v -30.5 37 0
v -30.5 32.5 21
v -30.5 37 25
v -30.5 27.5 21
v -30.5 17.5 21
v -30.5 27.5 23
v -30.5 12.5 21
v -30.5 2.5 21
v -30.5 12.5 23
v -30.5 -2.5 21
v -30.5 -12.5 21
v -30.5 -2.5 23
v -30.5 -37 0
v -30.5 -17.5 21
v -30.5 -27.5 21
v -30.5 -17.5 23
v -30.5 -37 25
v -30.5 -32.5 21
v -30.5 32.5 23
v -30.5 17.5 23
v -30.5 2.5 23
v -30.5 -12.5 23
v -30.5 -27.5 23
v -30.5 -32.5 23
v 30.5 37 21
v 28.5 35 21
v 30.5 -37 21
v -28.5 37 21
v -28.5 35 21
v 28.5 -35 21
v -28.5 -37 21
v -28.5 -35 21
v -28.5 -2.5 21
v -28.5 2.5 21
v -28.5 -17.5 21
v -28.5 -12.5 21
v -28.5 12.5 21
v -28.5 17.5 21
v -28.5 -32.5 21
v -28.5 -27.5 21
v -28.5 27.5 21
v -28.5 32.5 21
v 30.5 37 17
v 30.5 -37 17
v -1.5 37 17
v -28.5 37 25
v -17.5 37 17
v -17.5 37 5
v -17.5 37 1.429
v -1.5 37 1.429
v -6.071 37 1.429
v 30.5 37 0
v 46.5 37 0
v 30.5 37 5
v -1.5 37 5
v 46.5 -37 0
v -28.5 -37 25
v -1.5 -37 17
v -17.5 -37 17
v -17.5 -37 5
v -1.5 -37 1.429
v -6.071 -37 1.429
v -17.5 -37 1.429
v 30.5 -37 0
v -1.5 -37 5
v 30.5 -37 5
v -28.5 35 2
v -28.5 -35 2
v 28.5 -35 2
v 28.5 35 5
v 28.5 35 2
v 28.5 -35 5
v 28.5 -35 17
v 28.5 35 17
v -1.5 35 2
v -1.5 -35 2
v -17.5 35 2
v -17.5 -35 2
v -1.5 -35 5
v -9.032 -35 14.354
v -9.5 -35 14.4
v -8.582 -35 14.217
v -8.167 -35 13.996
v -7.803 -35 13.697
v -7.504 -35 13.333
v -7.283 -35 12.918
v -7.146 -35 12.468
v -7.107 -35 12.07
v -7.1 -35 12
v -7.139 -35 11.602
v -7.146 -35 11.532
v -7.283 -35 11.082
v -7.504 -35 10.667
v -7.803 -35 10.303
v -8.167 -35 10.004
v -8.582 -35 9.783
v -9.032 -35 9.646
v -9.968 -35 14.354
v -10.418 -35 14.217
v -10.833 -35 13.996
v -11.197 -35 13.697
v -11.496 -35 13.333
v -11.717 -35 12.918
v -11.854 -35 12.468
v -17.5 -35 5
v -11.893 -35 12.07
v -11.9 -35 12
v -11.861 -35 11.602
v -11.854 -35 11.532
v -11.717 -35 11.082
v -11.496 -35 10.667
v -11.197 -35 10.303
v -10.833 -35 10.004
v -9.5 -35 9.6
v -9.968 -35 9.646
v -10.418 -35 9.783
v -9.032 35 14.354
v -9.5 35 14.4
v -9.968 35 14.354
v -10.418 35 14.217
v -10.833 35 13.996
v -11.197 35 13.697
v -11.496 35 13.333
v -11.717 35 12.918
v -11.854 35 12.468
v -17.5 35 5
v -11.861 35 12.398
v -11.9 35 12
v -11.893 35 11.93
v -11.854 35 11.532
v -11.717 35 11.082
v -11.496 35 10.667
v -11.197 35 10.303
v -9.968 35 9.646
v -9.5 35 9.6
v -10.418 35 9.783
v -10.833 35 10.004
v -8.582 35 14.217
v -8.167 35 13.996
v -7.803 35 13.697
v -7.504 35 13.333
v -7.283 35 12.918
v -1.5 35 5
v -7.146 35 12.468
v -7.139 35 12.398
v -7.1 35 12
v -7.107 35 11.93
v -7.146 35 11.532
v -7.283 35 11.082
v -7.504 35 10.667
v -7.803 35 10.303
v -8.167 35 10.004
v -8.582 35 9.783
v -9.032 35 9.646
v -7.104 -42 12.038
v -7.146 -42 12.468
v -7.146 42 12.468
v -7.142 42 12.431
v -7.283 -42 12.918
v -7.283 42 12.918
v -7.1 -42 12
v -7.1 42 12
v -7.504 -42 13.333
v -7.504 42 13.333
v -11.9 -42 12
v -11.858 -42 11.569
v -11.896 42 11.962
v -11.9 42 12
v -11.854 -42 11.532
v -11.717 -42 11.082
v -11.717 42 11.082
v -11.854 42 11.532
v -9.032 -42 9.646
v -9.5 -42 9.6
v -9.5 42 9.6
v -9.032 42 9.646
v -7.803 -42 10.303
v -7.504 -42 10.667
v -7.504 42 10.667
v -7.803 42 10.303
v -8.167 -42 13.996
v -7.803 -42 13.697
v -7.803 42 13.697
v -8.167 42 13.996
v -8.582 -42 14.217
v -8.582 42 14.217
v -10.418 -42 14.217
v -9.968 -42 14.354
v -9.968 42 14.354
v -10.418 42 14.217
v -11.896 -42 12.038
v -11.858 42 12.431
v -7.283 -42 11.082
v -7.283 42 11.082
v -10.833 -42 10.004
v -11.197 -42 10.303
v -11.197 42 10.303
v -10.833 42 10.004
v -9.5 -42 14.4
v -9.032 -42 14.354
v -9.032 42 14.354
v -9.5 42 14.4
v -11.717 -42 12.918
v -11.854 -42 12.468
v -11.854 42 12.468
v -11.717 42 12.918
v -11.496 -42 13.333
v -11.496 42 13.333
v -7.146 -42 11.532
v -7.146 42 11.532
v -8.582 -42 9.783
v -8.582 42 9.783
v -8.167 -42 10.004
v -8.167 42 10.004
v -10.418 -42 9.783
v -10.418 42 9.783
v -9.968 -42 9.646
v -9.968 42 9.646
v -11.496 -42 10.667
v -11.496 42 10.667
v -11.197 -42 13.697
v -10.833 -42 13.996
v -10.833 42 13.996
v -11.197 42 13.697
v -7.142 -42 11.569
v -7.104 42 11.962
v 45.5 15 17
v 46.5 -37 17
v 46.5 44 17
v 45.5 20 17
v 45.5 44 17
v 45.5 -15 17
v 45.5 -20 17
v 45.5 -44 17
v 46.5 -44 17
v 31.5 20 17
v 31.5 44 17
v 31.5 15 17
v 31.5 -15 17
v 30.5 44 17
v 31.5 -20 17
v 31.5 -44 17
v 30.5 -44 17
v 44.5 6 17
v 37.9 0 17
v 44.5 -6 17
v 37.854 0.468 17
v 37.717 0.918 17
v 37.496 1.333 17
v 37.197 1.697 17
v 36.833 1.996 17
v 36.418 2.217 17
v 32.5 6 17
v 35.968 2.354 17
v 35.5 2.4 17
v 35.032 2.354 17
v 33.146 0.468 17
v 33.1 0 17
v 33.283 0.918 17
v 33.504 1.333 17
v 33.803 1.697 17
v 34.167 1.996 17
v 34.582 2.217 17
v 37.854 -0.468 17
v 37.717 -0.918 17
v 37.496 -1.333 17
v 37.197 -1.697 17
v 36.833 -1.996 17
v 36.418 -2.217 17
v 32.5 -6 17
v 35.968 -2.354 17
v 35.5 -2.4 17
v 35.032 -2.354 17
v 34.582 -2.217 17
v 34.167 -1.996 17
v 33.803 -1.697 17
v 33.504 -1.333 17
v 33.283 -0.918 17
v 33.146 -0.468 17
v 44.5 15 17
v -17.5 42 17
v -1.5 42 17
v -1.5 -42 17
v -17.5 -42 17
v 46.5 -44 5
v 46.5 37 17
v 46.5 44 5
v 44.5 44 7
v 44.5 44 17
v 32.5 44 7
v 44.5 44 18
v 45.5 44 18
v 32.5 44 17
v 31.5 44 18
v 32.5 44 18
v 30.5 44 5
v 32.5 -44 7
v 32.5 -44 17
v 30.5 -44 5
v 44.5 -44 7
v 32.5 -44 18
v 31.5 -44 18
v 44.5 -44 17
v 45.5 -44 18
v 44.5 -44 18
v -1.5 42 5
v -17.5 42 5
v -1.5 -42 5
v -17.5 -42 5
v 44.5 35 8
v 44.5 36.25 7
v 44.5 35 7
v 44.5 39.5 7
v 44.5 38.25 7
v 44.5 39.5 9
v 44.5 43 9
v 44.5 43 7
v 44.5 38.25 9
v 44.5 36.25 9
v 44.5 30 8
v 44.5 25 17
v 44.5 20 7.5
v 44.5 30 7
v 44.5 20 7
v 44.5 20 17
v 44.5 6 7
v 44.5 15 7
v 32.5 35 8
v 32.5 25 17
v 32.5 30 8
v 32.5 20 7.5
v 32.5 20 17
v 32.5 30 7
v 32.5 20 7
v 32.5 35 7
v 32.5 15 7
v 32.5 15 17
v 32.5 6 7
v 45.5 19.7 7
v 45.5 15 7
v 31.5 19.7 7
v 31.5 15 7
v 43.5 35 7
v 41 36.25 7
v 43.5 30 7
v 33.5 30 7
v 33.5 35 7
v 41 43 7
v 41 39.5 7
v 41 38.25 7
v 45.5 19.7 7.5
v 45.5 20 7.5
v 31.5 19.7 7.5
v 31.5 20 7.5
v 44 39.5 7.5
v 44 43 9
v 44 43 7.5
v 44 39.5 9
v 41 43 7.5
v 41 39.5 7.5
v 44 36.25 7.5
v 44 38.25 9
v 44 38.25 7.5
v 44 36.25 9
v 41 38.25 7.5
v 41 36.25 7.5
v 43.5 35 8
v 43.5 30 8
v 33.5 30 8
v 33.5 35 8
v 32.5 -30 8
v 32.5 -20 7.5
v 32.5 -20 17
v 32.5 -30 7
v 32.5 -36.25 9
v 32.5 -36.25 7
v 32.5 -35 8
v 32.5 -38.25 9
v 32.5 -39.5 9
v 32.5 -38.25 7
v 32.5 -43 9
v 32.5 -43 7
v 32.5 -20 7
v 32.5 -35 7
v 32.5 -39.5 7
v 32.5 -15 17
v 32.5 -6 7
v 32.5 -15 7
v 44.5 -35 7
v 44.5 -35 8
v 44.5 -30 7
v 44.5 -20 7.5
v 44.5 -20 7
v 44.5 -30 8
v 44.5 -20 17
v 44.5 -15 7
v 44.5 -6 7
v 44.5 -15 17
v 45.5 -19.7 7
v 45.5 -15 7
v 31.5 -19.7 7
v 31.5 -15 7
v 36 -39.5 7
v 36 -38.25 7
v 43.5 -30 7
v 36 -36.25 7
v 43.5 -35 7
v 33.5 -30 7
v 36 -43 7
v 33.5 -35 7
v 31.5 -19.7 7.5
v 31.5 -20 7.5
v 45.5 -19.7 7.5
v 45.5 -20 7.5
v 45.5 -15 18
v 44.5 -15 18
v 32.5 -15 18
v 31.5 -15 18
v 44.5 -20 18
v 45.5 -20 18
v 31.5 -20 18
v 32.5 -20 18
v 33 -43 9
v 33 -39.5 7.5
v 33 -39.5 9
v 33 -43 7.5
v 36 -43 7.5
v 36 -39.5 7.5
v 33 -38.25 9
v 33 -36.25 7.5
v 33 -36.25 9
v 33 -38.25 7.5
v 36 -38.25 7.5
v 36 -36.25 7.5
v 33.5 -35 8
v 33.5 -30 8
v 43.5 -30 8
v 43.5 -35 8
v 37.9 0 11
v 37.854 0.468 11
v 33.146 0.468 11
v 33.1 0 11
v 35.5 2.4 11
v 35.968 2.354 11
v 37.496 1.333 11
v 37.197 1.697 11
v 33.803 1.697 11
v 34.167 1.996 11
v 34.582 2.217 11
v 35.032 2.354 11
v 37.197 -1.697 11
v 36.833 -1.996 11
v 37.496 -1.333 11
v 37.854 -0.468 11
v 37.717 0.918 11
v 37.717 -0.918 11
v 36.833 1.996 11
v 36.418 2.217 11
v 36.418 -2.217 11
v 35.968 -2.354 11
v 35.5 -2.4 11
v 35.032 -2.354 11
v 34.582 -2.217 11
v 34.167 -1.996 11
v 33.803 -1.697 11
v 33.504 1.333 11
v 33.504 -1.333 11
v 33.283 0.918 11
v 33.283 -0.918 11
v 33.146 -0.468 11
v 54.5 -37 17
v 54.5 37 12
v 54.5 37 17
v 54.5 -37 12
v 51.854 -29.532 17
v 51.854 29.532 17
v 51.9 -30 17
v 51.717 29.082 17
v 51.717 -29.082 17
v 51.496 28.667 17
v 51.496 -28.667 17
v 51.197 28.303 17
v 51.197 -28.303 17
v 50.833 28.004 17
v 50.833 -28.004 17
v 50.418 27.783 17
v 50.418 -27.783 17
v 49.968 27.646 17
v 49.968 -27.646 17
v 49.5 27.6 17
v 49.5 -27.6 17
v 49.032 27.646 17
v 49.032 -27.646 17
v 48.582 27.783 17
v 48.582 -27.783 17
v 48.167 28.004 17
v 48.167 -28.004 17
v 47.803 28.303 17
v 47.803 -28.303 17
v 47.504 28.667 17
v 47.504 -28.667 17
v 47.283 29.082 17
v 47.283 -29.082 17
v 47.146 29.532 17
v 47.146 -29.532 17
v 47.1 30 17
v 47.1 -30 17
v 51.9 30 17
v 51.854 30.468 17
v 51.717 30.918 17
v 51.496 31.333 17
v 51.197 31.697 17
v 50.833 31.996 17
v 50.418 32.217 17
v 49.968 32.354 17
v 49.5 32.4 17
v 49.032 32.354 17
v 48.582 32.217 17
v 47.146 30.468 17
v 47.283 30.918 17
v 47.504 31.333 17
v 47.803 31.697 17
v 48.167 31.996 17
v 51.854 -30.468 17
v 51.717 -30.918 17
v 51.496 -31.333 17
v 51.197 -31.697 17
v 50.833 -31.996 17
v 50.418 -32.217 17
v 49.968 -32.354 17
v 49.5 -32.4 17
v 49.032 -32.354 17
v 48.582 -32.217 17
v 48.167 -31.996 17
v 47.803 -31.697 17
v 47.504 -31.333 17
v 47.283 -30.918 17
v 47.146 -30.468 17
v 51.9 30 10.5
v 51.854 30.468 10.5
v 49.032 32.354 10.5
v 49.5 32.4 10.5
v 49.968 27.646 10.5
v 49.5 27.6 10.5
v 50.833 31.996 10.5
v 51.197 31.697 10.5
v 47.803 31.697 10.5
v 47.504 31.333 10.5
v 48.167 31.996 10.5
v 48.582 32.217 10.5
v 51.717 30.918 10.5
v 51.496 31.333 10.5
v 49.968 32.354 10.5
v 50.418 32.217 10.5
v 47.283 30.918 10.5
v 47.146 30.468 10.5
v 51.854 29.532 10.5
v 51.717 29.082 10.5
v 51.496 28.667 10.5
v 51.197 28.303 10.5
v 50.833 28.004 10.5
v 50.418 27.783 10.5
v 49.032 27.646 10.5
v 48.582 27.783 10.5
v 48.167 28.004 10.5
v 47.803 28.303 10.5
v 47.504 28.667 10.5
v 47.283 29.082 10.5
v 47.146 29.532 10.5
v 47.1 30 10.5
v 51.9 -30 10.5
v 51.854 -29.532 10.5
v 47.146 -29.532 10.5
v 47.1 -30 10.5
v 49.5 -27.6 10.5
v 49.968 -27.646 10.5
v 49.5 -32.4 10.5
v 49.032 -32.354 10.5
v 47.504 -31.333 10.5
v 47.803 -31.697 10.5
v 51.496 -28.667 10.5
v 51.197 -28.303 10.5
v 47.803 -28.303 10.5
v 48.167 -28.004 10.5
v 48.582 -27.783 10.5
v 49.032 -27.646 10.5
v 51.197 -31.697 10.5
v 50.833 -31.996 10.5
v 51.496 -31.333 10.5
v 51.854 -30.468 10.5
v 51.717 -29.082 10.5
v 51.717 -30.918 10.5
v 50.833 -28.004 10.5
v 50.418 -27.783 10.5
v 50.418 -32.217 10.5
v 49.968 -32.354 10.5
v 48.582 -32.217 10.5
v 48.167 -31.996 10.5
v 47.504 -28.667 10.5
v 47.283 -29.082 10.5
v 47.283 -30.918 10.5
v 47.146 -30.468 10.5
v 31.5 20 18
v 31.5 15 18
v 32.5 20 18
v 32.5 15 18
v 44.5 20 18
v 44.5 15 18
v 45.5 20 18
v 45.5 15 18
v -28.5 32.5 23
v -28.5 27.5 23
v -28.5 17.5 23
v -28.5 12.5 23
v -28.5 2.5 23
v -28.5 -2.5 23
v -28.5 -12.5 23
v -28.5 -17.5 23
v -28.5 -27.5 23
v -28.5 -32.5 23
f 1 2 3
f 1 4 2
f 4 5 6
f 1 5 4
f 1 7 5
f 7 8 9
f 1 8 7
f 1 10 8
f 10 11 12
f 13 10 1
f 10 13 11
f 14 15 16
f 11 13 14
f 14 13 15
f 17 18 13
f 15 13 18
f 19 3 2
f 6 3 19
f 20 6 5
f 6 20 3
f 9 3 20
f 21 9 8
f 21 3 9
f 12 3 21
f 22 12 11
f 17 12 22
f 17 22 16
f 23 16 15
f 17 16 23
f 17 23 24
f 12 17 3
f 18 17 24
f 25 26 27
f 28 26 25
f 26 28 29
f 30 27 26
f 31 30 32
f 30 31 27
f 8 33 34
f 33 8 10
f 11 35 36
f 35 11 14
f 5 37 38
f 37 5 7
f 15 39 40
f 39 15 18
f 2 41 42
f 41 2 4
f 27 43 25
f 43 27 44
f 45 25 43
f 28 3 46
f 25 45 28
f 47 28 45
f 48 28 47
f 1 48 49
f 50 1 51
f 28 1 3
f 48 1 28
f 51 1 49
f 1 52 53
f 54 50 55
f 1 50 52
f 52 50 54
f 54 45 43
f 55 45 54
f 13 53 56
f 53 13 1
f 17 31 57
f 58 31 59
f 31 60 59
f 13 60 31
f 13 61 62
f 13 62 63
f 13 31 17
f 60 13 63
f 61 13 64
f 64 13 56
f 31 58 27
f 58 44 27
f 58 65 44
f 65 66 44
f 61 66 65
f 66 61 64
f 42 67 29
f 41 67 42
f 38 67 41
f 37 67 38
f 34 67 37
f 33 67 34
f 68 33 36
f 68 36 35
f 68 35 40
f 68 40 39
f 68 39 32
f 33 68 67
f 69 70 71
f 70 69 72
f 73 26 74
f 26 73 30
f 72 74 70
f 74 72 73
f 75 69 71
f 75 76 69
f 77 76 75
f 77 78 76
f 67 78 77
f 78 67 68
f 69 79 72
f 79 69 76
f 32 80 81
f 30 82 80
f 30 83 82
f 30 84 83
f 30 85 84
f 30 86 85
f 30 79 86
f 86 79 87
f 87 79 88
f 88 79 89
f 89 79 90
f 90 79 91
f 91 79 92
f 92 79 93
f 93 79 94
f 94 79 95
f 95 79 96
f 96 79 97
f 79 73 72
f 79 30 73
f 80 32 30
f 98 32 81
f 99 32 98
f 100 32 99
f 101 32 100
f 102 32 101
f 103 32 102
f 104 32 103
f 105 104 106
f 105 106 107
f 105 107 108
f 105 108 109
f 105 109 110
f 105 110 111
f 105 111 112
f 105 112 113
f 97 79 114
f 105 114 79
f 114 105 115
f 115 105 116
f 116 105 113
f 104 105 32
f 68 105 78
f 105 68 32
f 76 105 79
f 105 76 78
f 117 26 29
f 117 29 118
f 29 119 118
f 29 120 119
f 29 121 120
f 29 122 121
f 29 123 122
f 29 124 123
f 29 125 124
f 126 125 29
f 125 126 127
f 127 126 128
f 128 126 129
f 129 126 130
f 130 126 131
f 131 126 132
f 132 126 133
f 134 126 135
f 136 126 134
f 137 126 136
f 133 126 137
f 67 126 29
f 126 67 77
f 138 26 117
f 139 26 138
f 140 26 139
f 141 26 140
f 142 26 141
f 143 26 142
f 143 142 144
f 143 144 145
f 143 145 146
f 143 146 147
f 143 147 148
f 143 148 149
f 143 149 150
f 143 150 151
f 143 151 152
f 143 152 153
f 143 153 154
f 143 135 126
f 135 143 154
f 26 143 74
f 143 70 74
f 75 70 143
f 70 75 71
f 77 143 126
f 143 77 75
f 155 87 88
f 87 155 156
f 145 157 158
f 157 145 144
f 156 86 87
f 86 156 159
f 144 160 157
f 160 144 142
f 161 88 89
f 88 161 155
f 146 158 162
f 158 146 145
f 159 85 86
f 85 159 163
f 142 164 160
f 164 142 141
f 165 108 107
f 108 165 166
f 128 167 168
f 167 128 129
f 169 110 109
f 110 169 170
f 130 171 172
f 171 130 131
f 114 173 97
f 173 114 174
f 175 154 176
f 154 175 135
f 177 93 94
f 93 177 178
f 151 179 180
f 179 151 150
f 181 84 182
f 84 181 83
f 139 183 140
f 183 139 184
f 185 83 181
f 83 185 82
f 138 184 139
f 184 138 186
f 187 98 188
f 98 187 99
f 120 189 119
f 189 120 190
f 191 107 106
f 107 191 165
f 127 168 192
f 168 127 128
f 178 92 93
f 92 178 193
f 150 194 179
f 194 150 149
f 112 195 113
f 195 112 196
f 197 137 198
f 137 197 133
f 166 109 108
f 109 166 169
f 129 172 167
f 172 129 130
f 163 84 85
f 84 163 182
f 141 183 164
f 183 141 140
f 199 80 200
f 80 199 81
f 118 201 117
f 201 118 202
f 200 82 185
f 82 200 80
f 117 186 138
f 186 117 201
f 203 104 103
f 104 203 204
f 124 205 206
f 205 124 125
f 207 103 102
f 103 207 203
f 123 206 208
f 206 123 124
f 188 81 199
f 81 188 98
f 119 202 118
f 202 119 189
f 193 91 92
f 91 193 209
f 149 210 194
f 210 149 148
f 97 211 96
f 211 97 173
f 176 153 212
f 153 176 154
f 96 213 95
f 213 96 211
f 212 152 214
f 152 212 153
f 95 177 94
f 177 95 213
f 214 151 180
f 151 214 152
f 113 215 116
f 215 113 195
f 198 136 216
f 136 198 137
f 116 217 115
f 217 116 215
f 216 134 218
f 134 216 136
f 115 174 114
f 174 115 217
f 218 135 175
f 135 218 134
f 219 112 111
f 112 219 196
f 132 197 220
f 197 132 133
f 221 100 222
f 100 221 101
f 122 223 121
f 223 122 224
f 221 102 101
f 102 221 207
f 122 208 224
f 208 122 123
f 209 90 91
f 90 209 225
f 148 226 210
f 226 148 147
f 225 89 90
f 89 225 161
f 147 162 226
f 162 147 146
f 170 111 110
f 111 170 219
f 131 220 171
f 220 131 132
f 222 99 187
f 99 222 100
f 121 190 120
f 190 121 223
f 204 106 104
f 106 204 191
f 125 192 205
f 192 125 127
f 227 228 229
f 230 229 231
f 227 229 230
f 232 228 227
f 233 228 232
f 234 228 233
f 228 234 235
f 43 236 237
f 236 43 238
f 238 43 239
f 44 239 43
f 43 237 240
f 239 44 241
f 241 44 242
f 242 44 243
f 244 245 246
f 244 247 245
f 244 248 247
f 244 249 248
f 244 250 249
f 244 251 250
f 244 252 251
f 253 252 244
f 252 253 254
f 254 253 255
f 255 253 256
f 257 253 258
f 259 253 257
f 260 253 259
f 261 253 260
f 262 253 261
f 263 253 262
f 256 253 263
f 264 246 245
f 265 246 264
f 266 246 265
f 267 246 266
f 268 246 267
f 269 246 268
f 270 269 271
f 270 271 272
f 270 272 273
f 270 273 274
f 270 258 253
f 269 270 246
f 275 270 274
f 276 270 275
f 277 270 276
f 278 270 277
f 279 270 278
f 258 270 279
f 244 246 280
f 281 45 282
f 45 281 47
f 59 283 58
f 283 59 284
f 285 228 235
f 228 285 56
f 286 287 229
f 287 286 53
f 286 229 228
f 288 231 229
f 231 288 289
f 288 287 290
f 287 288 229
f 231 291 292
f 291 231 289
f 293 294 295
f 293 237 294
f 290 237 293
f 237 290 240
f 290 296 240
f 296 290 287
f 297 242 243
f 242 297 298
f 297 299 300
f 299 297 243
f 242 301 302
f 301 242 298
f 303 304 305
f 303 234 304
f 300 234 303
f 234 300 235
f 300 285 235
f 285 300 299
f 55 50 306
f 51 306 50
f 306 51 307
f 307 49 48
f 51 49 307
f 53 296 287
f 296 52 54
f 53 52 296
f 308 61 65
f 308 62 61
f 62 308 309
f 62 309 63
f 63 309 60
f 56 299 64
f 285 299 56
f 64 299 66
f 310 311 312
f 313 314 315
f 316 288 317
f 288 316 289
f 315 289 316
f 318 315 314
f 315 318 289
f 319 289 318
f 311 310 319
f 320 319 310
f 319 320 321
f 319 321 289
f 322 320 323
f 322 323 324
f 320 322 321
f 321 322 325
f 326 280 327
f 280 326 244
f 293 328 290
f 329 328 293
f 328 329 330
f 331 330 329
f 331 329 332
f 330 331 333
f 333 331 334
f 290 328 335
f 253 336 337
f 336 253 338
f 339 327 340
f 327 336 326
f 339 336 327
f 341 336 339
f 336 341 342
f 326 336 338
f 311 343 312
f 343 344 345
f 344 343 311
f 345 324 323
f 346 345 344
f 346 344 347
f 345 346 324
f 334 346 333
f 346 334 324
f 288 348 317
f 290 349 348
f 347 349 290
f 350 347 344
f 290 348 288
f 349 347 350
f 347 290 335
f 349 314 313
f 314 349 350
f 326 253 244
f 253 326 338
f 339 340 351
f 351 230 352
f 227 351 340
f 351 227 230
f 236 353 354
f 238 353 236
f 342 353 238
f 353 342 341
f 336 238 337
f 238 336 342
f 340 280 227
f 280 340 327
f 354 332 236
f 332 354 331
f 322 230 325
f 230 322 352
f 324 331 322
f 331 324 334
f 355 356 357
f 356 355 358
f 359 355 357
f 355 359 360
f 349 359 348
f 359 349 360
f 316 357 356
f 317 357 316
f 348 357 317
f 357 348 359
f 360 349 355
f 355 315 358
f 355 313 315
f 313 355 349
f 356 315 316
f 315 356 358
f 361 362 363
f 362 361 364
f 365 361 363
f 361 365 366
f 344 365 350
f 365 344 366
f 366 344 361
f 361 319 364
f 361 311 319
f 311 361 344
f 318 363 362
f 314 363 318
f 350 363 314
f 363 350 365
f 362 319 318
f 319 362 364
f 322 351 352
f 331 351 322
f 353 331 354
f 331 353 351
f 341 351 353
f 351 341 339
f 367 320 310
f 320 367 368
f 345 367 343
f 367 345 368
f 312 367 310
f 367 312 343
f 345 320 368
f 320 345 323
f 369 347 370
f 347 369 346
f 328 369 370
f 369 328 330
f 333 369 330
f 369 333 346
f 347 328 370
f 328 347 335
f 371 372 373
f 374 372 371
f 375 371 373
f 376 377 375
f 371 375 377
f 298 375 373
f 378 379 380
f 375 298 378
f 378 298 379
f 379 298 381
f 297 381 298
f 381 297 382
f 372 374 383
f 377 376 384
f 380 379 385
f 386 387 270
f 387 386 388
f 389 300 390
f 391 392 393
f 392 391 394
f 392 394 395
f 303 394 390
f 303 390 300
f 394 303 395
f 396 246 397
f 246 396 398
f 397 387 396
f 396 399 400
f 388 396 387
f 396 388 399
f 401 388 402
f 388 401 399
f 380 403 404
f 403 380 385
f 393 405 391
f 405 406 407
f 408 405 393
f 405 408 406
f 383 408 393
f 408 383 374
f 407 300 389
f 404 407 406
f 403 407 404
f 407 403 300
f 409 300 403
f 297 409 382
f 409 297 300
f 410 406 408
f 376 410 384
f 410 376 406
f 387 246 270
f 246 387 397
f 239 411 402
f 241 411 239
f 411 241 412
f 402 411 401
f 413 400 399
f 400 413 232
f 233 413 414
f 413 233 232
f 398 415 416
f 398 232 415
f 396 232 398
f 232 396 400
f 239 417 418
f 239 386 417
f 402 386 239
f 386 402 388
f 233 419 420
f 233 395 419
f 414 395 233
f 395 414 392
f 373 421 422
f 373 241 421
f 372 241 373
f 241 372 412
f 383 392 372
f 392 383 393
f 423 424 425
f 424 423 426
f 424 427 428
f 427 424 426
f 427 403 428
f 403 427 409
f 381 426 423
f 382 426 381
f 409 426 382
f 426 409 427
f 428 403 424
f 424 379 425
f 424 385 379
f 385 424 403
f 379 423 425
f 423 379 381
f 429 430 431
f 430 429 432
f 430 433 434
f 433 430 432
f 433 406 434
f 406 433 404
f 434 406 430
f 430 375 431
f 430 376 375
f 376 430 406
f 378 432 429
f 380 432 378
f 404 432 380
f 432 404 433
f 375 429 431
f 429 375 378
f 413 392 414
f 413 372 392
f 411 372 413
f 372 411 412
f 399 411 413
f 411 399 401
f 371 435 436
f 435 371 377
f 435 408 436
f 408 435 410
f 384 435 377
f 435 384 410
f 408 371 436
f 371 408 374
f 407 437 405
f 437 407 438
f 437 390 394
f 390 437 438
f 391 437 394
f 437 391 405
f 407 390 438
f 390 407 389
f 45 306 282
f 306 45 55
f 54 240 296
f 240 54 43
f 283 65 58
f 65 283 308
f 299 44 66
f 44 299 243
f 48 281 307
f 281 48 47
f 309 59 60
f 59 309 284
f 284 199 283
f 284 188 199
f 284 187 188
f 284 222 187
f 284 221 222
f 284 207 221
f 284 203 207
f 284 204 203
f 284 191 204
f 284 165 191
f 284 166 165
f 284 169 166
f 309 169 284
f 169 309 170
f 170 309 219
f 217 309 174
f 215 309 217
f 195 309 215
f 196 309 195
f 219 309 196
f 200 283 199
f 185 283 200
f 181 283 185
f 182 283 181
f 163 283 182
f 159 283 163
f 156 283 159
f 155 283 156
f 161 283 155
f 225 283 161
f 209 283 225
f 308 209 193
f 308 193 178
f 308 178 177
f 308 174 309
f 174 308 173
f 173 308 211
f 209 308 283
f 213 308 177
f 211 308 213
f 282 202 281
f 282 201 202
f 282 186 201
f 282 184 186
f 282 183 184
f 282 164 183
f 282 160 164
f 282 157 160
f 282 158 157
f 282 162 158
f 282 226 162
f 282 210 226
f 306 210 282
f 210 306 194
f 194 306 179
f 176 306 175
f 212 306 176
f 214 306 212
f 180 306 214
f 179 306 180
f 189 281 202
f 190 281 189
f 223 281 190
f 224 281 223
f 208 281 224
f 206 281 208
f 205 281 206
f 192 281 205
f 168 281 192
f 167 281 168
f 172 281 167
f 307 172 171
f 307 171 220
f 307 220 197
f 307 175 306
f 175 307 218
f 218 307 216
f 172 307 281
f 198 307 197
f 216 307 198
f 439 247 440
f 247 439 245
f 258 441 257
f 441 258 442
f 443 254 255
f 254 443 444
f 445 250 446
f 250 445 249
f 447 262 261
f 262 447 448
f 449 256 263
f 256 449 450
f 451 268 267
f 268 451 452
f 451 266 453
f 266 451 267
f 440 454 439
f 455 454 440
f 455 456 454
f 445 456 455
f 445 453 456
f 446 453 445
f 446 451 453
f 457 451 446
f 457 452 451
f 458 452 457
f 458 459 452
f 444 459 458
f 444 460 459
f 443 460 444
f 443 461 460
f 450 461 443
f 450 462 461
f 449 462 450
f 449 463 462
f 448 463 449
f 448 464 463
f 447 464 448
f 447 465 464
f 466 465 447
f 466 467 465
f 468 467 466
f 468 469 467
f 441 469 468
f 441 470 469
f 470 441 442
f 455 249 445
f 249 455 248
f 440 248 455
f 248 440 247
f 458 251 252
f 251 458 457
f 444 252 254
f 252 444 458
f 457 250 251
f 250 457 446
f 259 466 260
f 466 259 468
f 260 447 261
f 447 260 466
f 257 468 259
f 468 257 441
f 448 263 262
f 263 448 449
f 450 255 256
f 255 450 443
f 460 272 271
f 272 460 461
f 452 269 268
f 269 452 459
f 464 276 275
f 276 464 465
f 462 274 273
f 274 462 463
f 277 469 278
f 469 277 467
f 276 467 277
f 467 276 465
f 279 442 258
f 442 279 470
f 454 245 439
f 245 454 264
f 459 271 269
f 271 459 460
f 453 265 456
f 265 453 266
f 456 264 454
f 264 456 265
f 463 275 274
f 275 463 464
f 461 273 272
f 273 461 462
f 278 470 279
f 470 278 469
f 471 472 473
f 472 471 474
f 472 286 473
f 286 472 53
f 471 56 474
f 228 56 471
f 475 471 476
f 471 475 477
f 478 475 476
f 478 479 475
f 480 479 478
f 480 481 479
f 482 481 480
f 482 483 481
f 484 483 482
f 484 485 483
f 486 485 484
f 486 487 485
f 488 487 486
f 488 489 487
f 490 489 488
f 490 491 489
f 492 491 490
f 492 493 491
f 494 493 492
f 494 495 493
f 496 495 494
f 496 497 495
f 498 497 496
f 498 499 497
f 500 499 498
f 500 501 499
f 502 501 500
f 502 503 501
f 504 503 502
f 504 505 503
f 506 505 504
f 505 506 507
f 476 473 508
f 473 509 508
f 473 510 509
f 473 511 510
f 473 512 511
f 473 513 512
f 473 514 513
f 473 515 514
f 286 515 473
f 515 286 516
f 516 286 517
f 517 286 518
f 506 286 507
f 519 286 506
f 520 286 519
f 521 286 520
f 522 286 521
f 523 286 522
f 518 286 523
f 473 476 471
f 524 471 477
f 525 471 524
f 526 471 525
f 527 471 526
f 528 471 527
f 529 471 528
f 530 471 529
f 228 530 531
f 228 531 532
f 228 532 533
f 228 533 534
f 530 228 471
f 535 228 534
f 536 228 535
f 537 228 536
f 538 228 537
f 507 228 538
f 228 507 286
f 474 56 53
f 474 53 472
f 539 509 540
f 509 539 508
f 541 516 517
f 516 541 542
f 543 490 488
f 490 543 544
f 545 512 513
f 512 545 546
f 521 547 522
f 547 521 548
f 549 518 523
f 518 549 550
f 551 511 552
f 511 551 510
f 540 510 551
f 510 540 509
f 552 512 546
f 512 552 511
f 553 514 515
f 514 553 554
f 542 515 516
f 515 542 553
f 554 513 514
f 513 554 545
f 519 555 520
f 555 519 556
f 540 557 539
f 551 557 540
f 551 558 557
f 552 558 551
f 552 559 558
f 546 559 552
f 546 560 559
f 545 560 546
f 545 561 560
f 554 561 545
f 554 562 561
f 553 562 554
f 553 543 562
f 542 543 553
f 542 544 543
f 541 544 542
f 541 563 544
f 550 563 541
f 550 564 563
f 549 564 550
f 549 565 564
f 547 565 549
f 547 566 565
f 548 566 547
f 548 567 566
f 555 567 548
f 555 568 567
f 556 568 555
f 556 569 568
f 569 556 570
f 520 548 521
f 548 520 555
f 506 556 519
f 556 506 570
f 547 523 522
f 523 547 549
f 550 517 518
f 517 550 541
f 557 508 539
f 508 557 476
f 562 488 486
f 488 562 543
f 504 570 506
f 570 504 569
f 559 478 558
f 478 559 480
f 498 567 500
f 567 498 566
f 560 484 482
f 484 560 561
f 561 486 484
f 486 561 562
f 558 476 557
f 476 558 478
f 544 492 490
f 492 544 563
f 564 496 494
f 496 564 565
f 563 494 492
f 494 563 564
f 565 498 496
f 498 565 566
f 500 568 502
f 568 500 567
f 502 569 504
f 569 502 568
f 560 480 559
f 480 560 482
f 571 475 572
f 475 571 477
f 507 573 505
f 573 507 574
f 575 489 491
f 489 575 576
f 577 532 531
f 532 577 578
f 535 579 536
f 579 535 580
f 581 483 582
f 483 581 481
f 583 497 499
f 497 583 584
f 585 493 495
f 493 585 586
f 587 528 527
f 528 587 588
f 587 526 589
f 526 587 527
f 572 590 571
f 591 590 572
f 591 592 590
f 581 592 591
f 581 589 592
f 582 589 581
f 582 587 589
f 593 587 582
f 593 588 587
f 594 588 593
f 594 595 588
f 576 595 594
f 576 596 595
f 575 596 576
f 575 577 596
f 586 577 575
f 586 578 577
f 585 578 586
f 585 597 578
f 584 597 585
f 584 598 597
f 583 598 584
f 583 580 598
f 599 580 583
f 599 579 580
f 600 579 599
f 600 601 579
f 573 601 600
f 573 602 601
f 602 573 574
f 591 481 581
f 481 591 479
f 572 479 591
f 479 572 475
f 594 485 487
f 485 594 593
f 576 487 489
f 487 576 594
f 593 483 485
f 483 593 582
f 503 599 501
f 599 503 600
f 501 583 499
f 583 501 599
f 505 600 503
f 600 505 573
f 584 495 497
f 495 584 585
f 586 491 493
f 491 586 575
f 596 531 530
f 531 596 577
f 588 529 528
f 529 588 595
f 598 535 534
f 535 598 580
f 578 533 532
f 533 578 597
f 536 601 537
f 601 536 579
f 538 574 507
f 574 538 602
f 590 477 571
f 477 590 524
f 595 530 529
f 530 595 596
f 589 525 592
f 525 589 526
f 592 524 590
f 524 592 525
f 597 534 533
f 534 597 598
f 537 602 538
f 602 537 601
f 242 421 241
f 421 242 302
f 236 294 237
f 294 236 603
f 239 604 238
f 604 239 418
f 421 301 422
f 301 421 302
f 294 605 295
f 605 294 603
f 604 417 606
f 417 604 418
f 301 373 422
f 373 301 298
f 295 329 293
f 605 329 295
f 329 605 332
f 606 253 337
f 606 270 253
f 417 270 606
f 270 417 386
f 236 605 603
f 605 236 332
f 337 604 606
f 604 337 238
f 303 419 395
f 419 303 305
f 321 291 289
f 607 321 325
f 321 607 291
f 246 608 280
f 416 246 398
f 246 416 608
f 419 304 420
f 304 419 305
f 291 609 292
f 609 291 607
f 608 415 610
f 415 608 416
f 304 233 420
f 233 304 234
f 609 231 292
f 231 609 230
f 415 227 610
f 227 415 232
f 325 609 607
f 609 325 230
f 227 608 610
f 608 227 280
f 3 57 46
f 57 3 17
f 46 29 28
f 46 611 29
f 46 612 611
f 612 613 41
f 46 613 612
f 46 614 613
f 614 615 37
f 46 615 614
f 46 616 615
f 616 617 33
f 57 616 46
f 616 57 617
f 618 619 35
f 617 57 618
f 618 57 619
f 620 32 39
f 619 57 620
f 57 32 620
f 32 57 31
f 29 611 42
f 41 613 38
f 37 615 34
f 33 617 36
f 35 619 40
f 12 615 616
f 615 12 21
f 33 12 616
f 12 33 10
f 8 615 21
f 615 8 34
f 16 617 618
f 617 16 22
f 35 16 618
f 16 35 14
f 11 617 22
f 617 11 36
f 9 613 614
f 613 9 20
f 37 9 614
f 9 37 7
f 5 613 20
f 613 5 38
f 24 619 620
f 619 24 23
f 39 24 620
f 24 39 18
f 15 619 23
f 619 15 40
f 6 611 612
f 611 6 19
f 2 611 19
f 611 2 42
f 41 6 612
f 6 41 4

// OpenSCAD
batt_l = 57;
batt_w = 70;
batt_h = 19;

pi_l = 65;
pi_w = 56;
pi_hole_space_l = 58;
pi_hole_space_w = 49;

wheel_dist_l = 48;
m3_insert_d = 4.8;

t = 2;

    //h=9.5+t*2+2;
    
    top_space = 4;
    h=12;
    w_off = 14.5;

    translate([batt_l/2+7+1.5*t,0,0])
    cube_center([16,batt_w+2*t,6]);

difference() {
    cube_center([batt_l+2*t,batt_w+2*t,batt_h + t]);
    translate([0,0,t])
    cube_center([batt_l,batt_w,batt_h * 2]);
    
        translate([-wheel_dist_l/2+w_off,0,(h+t)/2+batt_h+t-h-top_space])
        rotate([90,0,0])
        cylinder(d=m3_insert_d, h=100, center=true, $fn=32);
}

wheelbars();

module cube_center(dims) {
    translate([-dims[0]/2, -dims[1]/2, 0])
    cube(dims);
}



module wheelbars() {
    
    //h=15.5;
    
    translate([0,0,batt_h+t - h - top_space])
    difference() {
        union() {
            
        translate([0,batt_w/2+t+3.5,0])
        translate([6+t/2,0,0])
        cube_center([batt_l + 2*t + 16 + t, 7, h]);
        translate([0,-(batt_w/2+t+3.5),0])
        translate([6+t/2,0,0])
        cube_center([batt_l + 2*t + 16 + t, 7, h]);
            
        translate([batt_l/2 + 6 + t*1.5 ,0,0])
        cube_center([16+t,batt_w + 2*t, h]);
        
        translate([-wheel_dist_l/2+w_off,batt_w/2+t-2,-5])
        triangle2();
        translate([wheel_dist_l/2+w_off,batt_w/2+t,-5])
        triangle2();
        translate([-wheel_dist_l/2+w_off,-(batt_w/2+t)+2,-5])
            scale([1,-1,1])
        triangle2();
        translate([wheel_dist_l/2+w_off,-(batt_w/2+t),-5])
            scale([1,-1,1])
        triangle2();    
                    
        }
    
        translate([14.5,batt_w/2 + 7, 0])
        cube_center([32, 10, h]);
        
        translate([14.5,-(batt_w/2 + 7), 0])
        cube_center([32, 10, h]);
        
        translate([-32.5,batt_w/2 + 7, 0])
        cube_center([30, 10, h]);
        
        translate([-32.5,-(batt_w/2 + 7), 0])
        cube_center([30, 10, h]);
        
        
        translate([-32.5,-(batt_w/2 + 7+ 5), 0])
        cube_center([80, 10, h]);
        
        translate([-32.5,(batt_w/2 + 7+ 5), 0])
        cube_center([80, 10, h]);
        
        translate([-wheel_dist_l/2+w_off,0,(h+t)/2])
        rotate([90,0,0])
        cylinder(d=m3_insert_d, h=100, center=true, $fn=32);
        
        
    translate([wheel_dist_l/2+w_off-3,-0,h-6])
        cylinder(d=m3_insert_d,h=100,$fn=32);
        
        /*
        translate([-wheel_dist_l/2+w_off,batt_w/2+7-t-0.5,h-3])
        cylinder(d=m3_insert_d, h=100, $fn=32);
        translate([-wheel_dist_l/2+w_off,-(batt_w/2+7-t-0.5),h-3])
        cylinder(d=m3_insert_d, h=100, $fn=32);
*/
        
        /*
        translate([wheel_dist_l/2,0,3.5])
        rotate([90,0,0])
        cylinder(d=m3_insert_d, h=15, center=true, $fn=32);*/
        
        translate([wheel_dist_l/2+w_off,batt_w/2 + t +7 - 38/2,t])
        rotate([0,0,180])
        difference() {
            union() {
                cube_center([12,38.001,9.5+50]);
                translate([0,-38/2+24+5/2,0])
                cube_center([14,5,9.5+50]);
            }
            translate([-4,-38/2+1+3.5/2,0])
            cube_center([3,3.5,0.5]);
            translate([-5.75,-38/2+1+3.5/2,0])
            cube_center([0.5,3.5,2]);
            
            translate([-4,-38/2+5.75+2/2,0])
            cube_center([3,2,0.5]);
            translate([-5.75,-38/2+5.75+2/2,0])
            cube_center([0.5,2,2]);
            
            translate([0,-38/2+24+0.3/2,0])
            cube_center([14,0.3,0.5]);
            
            translate([-12/2+1/2,-38/2+9+5/2,0])
            cube_center([1,5,1]);
            translate([12/2-1/2,-38/2+9+5/2,0])
            cube_center([1,5,1]);
        }
        
        translate([wheel_dist_l/2+w_off,-(batt_w/2 + t +7 - 38/2),t])
        difference() {
            union() {
                cube_center([12,38.001,9.5+50]);
                translate([0,-38/2+24+5/2,0])
                cube_center([14,5,9.5+50]);
            }
            translate([-4,-38/2+1+3.5/2,0])
            cube_center([3,3.5,0.5]);
            translate([-5.75,-38/2+1+3.5/2,0])
            cube_center([0.5,3.5,2]);
            
            translate([-4,-38/2+5.75+2/2,0])
            cube_center([3,2,0.5]);
            translate([-5.75,-38/2+5.75+2/2,0])
            cube_center([0.5,2,2]);
            
            translate([0,-38/2+24+0.3/2,0])
            cube_center([14,0.3,0.5]);
            
            translate([-12/2+1/2,-38/2+9+5/2,0])
            cube_center([1,5,1]);
            translate([12/2-1/2,-38/2+9+5/2,0])
            cube_center([1,5,1]);
        }
    }
    
}

translate([+batt_l/2+2*t+14,0,0])
{
    difference() {
        scale([-1,1,1]) triangle();
        translate([3,30,batt_h+t-top_space - 6.5])
        cylinder(d=m3_insert_d,h=100,$fn=32);
        translate([3,-30,batt_h+t-top_space - 6.5])
        cylinder(d=m3_insert_d,h=100,$fn=32);
    }
}

module triangle() {
scale([1,1,1])
rotate([0,-90,90])
linear_extrude(height = batt_w+2*t, center = true, convexity = 10, twist = 0)
polygon(points=[[0,0],[12,8],[batt_h+t-top_space,8],[batt_h+t-top_space,0]]);
}

module triangle2() {
scale([1,1,1])
rotate([0,-90,0])
linear_extrude(height = 16, center = true, convexity = 10, twist = 0)
polygon(points=[[0,0],[5,7],[5,0]]);
}

translate([32,0,batt_h + t - top_space])
difference() {
    cube_center([1,batt_w+2*7+2*t,1]);
    translate([0,-17.5,0])
    cube_center([5,5,5]);
    translate([0,17.5,0])
    cube_center([5,5,5]);
}
translate([32  +13,0,batt_h + t - top_space])
difference() {
    cube_center([1,batt_w+2*7+2*t,1]);
    translate([0,-17.5,0])
    cube_center([5,5,5]);
    translate([0,17.5,0])
    cube_center([5,5,5]);
}

translate([-batt_l/2-t/2,0,batt_h+t]) {
    difference() {
        cube_center([2,batt_w+2*t,4]);
        cube_center([2,5,2]);
        translate([0,-15,0])
        cube_center([2,5,2]);
        translate([0,15,0])
        cube_center([2,5,2]);
        translate([0,-30,0])
        cube_center([2,5,2]);
        translate([0,30,0])
        cube_center([2,5,2]);
    }
}

/*
translate([35,0,12+5])
cube_center([100,100,5]);
*/
